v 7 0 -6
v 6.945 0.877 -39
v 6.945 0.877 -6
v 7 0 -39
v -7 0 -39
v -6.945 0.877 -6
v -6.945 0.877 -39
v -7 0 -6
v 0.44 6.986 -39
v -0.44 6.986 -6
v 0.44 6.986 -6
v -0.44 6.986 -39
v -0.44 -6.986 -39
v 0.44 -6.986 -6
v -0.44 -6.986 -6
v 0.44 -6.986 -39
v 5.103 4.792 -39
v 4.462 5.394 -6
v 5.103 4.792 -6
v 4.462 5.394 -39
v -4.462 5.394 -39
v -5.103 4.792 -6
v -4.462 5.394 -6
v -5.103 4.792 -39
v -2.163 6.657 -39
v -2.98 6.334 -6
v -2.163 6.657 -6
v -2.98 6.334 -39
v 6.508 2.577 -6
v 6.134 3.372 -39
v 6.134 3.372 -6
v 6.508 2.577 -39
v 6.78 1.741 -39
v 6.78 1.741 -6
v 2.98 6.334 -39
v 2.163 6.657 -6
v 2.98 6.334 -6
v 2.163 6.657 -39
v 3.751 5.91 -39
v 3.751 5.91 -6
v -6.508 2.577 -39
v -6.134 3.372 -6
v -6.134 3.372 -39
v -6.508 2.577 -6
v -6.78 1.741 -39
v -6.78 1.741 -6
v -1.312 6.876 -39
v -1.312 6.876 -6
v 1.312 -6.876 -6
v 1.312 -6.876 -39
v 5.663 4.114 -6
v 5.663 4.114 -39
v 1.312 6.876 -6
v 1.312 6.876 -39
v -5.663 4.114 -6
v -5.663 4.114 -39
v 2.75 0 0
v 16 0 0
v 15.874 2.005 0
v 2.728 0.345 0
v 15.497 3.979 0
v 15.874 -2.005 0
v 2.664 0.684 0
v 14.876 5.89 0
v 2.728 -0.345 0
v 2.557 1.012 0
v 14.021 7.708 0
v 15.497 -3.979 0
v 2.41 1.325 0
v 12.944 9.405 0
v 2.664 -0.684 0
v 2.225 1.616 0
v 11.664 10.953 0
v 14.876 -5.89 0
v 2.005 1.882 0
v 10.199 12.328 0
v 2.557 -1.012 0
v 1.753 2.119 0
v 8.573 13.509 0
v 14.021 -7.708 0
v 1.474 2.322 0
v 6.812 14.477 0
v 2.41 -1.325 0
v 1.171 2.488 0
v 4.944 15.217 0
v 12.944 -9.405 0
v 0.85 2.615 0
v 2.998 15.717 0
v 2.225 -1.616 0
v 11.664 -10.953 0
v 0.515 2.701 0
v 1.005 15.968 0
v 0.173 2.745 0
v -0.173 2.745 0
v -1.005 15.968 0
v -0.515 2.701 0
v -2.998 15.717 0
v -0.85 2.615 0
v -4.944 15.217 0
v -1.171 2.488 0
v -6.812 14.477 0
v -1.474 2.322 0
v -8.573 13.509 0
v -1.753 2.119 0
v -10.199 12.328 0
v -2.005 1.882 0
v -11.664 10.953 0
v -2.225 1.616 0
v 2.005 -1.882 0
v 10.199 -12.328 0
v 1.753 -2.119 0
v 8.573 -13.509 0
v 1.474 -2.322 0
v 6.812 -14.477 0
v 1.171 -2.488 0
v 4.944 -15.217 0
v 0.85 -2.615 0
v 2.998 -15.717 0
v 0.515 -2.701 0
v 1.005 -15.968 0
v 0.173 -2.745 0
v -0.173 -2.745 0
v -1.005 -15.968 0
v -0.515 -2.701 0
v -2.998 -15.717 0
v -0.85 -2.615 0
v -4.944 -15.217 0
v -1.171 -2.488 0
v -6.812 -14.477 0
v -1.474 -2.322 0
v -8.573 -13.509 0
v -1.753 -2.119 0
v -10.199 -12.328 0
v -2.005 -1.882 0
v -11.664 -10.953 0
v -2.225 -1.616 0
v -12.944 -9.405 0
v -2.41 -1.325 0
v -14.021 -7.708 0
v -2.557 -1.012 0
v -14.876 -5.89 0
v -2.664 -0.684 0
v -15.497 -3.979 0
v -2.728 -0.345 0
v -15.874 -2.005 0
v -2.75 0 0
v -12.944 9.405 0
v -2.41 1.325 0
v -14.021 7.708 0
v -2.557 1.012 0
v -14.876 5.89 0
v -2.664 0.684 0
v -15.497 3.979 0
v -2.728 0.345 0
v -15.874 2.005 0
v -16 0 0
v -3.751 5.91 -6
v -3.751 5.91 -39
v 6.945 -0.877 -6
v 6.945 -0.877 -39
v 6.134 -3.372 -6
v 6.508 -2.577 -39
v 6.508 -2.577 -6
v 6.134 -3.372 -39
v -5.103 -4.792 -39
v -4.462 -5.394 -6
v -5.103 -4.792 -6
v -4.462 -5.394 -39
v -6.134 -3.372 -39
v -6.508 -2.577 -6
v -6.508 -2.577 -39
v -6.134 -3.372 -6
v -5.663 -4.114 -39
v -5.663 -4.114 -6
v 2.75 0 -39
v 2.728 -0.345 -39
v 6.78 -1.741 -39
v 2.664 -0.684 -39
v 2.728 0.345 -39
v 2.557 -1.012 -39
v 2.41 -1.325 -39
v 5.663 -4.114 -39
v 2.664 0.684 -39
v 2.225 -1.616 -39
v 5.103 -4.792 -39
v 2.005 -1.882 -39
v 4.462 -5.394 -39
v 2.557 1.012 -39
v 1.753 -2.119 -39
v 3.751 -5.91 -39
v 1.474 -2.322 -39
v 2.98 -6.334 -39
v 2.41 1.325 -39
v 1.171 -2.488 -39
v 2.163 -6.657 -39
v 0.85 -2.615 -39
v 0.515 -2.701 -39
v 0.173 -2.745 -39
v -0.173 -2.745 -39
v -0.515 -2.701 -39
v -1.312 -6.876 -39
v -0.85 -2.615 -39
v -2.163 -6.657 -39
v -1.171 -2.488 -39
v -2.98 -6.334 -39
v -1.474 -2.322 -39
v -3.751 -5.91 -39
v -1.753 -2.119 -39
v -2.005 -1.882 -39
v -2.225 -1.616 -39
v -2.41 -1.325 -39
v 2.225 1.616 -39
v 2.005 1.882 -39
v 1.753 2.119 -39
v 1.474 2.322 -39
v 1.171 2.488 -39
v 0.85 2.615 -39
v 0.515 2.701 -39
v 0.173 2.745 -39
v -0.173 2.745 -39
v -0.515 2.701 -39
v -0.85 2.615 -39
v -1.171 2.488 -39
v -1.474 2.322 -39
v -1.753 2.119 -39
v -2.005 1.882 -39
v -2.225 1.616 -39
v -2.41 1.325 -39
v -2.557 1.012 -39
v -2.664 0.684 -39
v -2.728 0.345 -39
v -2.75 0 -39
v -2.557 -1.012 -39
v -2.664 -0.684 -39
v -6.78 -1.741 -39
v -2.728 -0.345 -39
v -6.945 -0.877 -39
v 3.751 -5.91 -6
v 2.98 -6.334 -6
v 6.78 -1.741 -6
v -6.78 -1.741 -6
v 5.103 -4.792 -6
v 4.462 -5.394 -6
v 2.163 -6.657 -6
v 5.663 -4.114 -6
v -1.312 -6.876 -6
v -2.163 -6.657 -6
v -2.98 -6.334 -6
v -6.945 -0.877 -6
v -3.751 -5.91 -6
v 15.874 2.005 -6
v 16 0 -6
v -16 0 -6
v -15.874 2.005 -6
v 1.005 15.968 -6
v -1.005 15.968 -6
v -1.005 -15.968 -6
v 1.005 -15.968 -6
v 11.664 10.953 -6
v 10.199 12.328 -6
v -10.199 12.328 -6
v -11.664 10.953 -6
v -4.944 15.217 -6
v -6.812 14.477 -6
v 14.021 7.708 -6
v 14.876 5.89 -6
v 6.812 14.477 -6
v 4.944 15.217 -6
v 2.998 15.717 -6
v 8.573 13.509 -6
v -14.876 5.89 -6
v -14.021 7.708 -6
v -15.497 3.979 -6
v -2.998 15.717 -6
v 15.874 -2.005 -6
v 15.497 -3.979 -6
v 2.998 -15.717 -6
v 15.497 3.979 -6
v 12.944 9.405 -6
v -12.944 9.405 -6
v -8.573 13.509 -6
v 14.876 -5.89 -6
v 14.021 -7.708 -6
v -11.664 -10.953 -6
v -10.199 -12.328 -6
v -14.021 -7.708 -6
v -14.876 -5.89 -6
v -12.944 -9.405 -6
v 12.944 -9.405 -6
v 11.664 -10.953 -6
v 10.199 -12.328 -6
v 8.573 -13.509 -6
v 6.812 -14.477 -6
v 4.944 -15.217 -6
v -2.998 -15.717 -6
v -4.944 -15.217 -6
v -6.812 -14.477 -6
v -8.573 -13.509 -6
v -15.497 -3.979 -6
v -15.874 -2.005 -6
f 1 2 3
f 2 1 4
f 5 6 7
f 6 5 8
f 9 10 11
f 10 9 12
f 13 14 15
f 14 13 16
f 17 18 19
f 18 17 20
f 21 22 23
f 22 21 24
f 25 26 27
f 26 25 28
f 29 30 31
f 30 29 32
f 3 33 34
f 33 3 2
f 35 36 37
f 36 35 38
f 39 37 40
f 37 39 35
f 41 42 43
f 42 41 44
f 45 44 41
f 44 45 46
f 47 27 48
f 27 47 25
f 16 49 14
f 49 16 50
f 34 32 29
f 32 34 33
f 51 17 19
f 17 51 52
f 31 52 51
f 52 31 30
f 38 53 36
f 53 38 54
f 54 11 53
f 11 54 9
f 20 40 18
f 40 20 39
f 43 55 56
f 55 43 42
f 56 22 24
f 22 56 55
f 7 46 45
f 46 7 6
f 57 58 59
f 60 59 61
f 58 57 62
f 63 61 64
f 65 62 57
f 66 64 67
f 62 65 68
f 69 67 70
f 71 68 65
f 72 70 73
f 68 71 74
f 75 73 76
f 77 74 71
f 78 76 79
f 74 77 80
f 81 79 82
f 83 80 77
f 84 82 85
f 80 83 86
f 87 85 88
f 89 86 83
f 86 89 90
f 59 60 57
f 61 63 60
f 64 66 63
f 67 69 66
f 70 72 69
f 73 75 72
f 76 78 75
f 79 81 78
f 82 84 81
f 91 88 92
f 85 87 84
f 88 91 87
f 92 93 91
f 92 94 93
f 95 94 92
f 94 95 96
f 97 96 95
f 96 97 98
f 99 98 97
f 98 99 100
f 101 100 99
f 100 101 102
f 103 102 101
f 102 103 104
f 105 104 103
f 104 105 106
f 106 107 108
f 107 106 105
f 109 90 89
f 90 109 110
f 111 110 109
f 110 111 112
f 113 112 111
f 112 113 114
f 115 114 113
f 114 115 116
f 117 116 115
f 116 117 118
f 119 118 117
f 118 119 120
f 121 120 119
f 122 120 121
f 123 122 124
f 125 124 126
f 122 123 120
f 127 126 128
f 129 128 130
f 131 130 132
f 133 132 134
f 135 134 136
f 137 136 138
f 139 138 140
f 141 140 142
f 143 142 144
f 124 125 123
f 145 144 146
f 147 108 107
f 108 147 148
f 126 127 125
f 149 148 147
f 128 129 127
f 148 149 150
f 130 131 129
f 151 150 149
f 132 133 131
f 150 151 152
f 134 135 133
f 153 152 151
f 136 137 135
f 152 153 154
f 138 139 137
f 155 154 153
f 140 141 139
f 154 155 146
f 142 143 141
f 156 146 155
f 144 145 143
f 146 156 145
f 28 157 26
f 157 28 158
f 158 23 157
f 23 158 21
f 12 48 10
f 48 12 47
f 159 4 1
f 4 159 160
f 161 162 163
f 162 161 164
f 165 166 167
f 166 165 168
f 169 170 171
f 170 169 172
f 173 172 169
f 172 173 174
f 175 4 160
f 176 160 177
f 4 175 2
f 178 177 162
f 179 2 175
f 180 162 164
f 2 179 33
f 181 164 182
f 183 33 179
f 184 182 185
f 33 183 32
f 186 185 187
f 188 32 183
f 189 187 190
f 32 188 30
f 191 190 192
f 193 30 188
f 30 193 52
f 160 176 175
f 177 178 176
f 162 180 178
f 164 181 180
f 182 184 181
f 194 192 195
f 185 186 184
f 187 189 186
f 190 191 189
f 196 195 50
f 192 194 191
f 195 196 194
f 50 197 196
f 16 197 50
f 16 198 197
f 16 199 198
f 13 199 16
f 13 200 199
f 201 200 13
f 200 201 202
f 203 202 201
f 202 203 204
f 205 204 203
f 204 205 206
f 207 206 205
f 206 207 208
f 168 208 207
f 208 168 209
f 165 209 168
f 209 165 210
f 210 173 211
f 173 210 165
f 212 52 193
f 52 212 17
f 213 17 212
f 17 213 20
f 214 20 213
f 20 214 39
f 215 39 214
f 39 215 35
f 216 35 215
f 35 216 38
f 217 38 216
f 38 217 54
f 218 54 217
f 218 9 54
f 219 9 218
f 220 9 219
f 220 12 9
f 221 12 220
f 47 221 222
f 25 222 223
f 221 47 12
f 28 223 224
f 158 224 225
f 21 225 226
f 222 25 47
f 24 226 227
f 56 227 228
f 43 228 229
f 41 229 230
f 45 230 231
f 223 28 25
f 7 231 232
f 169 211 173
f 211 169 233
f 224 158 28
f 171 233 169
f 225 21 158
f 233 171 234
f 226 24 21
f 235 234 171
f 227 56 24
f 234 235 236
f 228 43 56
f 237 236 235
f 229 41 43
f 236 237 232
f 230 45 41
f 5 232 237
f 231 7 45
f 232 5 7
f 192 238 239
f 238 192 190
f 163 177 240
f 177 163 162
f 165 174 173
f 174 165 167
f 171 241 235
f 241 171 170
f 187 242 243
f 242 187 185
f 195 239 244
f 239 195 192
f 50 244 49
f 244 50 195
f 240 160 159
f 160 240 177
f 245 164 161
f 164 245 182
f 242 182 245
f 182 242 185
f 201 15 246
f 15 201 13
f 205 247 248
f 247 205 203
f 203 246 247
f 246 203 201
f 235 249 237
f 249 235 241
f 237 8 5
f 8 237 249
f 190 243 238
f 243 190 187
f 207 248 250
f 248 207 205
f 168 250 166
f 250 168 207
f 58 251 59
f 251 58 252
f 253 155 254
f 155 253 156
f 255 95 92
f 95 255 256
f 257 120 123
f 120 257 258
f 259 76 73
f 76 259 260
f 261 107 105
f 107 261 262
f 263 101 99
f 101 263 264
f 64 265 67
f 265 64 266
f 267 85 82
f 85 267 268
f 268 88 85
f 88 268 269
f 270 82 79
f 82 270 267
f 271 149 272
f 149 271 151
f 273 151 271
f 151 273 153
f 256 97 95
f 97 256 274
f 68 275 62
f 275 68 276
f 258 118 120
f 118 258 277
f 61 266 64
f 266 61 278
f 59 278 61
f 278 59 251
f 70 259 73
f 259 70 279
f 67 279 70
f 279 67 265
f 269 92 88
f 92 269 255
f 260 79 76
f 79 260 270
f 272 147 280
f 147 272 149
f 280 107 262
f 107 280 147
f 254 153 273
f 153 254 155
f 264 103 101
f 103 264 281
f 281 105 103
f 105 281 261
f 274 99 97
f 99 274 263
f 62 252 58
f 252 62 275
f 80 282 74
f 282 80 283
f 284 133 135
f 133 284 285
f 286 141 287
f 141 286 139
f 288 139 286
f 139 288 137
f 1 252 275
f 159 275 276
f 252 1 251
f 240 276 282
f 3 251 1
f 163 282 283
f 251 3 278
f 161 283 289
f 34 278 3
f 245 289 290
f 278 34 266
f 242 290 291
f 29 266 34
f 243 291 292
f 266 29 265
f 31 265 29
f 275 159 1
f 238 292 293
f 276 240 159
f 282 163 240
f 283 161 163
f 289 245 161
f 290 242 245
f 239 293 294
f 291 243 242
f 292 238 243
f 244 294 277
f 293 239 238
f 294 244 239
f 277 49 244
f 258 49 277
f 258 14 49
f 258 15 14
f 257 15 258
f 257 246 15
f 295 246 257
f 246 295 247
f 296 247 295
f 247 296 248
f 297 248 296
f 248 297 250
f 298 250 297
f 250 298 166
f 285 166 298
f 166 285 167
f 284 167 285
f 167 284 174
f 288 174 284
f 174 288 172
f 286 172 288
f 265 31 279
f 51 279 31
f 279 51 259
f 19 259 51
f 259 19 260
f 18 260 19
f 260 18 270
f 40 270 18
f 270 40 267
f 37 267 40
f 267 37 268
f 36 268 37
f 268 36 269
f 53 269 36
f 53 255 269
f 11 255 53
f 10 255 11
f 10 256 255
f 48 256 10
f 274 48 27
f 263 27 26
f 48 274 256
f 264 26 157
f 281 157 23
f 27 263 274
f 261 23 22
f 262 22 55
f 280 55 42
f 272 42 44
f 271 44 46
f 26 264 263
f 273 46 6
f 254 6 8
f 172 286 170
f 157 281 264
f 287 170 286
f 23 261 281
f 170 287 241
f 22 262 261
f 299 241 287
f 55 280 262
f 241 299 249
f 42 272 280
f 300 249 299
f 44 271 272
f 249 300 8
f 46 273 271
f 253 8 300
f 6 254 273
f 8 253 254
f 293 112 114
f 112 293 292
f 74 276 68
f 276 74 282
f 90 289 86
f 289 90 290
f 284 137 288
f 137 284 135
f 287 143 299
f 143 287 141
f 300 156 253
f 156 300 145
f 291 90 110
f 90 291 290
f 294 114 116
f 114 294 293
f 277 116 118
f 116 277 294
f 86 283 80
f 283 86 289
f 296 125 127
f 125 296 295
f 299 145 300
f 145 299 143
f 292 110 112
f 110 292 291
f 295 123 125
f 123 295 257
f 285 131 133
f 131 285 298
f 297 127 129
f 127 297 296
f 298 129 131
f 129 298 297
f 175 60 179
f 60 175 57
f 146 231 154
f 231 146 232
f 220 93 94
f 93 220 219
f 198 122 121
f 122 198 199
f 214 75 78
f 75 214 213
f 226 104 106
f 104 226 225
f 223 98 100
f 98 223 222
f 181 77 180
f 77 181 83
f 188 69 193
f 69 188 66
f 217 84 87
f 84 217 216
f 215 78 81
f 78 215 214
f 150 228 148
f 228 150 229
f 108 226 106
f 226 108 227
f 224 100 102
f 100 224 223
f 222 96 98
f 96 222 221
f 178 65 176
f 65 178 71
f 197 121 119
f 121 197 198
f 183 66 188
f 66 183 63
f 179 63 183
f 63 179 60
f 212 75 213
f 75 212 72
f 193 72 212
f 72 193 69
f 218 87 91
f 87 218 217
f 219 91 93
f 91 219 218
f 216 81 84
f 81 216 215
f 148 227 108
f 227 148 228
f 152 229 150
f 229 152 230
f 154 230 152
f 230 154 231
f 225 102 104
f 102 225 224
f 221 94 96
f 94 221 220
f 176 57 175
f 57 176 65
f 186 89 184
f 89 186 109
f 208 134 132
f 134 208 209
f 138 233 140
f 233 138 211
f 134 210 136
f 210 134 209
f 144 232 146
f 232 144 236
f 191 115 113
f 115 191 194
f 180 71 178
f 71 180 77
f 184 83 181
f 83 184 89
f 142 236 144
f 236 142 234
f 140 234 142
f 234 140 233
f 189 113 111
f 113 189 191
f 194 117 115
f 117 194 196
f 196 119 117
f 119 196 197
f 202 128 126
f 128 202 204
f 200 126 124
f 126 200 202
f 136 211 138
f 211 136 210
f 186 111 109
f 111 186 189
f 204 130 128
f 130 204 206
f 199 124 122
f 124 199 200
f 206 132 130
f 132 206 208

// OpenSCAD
$fn = 50;


difference() {
	union() {
		translate(v = [0, 0, -39.0000000000]) {
			cylinder(h = 39, r = 7.0000000000);
		}
		translate(v = [0, 0, -6.0000000000]) {
			cylinder(h = 6, r = 16.0000000000);
		}
	}
	union() {
		#translate(v = [0, 0, -39]) {
			cylinder(h = 39, r = 2.7500000000);
		}
	}
}
